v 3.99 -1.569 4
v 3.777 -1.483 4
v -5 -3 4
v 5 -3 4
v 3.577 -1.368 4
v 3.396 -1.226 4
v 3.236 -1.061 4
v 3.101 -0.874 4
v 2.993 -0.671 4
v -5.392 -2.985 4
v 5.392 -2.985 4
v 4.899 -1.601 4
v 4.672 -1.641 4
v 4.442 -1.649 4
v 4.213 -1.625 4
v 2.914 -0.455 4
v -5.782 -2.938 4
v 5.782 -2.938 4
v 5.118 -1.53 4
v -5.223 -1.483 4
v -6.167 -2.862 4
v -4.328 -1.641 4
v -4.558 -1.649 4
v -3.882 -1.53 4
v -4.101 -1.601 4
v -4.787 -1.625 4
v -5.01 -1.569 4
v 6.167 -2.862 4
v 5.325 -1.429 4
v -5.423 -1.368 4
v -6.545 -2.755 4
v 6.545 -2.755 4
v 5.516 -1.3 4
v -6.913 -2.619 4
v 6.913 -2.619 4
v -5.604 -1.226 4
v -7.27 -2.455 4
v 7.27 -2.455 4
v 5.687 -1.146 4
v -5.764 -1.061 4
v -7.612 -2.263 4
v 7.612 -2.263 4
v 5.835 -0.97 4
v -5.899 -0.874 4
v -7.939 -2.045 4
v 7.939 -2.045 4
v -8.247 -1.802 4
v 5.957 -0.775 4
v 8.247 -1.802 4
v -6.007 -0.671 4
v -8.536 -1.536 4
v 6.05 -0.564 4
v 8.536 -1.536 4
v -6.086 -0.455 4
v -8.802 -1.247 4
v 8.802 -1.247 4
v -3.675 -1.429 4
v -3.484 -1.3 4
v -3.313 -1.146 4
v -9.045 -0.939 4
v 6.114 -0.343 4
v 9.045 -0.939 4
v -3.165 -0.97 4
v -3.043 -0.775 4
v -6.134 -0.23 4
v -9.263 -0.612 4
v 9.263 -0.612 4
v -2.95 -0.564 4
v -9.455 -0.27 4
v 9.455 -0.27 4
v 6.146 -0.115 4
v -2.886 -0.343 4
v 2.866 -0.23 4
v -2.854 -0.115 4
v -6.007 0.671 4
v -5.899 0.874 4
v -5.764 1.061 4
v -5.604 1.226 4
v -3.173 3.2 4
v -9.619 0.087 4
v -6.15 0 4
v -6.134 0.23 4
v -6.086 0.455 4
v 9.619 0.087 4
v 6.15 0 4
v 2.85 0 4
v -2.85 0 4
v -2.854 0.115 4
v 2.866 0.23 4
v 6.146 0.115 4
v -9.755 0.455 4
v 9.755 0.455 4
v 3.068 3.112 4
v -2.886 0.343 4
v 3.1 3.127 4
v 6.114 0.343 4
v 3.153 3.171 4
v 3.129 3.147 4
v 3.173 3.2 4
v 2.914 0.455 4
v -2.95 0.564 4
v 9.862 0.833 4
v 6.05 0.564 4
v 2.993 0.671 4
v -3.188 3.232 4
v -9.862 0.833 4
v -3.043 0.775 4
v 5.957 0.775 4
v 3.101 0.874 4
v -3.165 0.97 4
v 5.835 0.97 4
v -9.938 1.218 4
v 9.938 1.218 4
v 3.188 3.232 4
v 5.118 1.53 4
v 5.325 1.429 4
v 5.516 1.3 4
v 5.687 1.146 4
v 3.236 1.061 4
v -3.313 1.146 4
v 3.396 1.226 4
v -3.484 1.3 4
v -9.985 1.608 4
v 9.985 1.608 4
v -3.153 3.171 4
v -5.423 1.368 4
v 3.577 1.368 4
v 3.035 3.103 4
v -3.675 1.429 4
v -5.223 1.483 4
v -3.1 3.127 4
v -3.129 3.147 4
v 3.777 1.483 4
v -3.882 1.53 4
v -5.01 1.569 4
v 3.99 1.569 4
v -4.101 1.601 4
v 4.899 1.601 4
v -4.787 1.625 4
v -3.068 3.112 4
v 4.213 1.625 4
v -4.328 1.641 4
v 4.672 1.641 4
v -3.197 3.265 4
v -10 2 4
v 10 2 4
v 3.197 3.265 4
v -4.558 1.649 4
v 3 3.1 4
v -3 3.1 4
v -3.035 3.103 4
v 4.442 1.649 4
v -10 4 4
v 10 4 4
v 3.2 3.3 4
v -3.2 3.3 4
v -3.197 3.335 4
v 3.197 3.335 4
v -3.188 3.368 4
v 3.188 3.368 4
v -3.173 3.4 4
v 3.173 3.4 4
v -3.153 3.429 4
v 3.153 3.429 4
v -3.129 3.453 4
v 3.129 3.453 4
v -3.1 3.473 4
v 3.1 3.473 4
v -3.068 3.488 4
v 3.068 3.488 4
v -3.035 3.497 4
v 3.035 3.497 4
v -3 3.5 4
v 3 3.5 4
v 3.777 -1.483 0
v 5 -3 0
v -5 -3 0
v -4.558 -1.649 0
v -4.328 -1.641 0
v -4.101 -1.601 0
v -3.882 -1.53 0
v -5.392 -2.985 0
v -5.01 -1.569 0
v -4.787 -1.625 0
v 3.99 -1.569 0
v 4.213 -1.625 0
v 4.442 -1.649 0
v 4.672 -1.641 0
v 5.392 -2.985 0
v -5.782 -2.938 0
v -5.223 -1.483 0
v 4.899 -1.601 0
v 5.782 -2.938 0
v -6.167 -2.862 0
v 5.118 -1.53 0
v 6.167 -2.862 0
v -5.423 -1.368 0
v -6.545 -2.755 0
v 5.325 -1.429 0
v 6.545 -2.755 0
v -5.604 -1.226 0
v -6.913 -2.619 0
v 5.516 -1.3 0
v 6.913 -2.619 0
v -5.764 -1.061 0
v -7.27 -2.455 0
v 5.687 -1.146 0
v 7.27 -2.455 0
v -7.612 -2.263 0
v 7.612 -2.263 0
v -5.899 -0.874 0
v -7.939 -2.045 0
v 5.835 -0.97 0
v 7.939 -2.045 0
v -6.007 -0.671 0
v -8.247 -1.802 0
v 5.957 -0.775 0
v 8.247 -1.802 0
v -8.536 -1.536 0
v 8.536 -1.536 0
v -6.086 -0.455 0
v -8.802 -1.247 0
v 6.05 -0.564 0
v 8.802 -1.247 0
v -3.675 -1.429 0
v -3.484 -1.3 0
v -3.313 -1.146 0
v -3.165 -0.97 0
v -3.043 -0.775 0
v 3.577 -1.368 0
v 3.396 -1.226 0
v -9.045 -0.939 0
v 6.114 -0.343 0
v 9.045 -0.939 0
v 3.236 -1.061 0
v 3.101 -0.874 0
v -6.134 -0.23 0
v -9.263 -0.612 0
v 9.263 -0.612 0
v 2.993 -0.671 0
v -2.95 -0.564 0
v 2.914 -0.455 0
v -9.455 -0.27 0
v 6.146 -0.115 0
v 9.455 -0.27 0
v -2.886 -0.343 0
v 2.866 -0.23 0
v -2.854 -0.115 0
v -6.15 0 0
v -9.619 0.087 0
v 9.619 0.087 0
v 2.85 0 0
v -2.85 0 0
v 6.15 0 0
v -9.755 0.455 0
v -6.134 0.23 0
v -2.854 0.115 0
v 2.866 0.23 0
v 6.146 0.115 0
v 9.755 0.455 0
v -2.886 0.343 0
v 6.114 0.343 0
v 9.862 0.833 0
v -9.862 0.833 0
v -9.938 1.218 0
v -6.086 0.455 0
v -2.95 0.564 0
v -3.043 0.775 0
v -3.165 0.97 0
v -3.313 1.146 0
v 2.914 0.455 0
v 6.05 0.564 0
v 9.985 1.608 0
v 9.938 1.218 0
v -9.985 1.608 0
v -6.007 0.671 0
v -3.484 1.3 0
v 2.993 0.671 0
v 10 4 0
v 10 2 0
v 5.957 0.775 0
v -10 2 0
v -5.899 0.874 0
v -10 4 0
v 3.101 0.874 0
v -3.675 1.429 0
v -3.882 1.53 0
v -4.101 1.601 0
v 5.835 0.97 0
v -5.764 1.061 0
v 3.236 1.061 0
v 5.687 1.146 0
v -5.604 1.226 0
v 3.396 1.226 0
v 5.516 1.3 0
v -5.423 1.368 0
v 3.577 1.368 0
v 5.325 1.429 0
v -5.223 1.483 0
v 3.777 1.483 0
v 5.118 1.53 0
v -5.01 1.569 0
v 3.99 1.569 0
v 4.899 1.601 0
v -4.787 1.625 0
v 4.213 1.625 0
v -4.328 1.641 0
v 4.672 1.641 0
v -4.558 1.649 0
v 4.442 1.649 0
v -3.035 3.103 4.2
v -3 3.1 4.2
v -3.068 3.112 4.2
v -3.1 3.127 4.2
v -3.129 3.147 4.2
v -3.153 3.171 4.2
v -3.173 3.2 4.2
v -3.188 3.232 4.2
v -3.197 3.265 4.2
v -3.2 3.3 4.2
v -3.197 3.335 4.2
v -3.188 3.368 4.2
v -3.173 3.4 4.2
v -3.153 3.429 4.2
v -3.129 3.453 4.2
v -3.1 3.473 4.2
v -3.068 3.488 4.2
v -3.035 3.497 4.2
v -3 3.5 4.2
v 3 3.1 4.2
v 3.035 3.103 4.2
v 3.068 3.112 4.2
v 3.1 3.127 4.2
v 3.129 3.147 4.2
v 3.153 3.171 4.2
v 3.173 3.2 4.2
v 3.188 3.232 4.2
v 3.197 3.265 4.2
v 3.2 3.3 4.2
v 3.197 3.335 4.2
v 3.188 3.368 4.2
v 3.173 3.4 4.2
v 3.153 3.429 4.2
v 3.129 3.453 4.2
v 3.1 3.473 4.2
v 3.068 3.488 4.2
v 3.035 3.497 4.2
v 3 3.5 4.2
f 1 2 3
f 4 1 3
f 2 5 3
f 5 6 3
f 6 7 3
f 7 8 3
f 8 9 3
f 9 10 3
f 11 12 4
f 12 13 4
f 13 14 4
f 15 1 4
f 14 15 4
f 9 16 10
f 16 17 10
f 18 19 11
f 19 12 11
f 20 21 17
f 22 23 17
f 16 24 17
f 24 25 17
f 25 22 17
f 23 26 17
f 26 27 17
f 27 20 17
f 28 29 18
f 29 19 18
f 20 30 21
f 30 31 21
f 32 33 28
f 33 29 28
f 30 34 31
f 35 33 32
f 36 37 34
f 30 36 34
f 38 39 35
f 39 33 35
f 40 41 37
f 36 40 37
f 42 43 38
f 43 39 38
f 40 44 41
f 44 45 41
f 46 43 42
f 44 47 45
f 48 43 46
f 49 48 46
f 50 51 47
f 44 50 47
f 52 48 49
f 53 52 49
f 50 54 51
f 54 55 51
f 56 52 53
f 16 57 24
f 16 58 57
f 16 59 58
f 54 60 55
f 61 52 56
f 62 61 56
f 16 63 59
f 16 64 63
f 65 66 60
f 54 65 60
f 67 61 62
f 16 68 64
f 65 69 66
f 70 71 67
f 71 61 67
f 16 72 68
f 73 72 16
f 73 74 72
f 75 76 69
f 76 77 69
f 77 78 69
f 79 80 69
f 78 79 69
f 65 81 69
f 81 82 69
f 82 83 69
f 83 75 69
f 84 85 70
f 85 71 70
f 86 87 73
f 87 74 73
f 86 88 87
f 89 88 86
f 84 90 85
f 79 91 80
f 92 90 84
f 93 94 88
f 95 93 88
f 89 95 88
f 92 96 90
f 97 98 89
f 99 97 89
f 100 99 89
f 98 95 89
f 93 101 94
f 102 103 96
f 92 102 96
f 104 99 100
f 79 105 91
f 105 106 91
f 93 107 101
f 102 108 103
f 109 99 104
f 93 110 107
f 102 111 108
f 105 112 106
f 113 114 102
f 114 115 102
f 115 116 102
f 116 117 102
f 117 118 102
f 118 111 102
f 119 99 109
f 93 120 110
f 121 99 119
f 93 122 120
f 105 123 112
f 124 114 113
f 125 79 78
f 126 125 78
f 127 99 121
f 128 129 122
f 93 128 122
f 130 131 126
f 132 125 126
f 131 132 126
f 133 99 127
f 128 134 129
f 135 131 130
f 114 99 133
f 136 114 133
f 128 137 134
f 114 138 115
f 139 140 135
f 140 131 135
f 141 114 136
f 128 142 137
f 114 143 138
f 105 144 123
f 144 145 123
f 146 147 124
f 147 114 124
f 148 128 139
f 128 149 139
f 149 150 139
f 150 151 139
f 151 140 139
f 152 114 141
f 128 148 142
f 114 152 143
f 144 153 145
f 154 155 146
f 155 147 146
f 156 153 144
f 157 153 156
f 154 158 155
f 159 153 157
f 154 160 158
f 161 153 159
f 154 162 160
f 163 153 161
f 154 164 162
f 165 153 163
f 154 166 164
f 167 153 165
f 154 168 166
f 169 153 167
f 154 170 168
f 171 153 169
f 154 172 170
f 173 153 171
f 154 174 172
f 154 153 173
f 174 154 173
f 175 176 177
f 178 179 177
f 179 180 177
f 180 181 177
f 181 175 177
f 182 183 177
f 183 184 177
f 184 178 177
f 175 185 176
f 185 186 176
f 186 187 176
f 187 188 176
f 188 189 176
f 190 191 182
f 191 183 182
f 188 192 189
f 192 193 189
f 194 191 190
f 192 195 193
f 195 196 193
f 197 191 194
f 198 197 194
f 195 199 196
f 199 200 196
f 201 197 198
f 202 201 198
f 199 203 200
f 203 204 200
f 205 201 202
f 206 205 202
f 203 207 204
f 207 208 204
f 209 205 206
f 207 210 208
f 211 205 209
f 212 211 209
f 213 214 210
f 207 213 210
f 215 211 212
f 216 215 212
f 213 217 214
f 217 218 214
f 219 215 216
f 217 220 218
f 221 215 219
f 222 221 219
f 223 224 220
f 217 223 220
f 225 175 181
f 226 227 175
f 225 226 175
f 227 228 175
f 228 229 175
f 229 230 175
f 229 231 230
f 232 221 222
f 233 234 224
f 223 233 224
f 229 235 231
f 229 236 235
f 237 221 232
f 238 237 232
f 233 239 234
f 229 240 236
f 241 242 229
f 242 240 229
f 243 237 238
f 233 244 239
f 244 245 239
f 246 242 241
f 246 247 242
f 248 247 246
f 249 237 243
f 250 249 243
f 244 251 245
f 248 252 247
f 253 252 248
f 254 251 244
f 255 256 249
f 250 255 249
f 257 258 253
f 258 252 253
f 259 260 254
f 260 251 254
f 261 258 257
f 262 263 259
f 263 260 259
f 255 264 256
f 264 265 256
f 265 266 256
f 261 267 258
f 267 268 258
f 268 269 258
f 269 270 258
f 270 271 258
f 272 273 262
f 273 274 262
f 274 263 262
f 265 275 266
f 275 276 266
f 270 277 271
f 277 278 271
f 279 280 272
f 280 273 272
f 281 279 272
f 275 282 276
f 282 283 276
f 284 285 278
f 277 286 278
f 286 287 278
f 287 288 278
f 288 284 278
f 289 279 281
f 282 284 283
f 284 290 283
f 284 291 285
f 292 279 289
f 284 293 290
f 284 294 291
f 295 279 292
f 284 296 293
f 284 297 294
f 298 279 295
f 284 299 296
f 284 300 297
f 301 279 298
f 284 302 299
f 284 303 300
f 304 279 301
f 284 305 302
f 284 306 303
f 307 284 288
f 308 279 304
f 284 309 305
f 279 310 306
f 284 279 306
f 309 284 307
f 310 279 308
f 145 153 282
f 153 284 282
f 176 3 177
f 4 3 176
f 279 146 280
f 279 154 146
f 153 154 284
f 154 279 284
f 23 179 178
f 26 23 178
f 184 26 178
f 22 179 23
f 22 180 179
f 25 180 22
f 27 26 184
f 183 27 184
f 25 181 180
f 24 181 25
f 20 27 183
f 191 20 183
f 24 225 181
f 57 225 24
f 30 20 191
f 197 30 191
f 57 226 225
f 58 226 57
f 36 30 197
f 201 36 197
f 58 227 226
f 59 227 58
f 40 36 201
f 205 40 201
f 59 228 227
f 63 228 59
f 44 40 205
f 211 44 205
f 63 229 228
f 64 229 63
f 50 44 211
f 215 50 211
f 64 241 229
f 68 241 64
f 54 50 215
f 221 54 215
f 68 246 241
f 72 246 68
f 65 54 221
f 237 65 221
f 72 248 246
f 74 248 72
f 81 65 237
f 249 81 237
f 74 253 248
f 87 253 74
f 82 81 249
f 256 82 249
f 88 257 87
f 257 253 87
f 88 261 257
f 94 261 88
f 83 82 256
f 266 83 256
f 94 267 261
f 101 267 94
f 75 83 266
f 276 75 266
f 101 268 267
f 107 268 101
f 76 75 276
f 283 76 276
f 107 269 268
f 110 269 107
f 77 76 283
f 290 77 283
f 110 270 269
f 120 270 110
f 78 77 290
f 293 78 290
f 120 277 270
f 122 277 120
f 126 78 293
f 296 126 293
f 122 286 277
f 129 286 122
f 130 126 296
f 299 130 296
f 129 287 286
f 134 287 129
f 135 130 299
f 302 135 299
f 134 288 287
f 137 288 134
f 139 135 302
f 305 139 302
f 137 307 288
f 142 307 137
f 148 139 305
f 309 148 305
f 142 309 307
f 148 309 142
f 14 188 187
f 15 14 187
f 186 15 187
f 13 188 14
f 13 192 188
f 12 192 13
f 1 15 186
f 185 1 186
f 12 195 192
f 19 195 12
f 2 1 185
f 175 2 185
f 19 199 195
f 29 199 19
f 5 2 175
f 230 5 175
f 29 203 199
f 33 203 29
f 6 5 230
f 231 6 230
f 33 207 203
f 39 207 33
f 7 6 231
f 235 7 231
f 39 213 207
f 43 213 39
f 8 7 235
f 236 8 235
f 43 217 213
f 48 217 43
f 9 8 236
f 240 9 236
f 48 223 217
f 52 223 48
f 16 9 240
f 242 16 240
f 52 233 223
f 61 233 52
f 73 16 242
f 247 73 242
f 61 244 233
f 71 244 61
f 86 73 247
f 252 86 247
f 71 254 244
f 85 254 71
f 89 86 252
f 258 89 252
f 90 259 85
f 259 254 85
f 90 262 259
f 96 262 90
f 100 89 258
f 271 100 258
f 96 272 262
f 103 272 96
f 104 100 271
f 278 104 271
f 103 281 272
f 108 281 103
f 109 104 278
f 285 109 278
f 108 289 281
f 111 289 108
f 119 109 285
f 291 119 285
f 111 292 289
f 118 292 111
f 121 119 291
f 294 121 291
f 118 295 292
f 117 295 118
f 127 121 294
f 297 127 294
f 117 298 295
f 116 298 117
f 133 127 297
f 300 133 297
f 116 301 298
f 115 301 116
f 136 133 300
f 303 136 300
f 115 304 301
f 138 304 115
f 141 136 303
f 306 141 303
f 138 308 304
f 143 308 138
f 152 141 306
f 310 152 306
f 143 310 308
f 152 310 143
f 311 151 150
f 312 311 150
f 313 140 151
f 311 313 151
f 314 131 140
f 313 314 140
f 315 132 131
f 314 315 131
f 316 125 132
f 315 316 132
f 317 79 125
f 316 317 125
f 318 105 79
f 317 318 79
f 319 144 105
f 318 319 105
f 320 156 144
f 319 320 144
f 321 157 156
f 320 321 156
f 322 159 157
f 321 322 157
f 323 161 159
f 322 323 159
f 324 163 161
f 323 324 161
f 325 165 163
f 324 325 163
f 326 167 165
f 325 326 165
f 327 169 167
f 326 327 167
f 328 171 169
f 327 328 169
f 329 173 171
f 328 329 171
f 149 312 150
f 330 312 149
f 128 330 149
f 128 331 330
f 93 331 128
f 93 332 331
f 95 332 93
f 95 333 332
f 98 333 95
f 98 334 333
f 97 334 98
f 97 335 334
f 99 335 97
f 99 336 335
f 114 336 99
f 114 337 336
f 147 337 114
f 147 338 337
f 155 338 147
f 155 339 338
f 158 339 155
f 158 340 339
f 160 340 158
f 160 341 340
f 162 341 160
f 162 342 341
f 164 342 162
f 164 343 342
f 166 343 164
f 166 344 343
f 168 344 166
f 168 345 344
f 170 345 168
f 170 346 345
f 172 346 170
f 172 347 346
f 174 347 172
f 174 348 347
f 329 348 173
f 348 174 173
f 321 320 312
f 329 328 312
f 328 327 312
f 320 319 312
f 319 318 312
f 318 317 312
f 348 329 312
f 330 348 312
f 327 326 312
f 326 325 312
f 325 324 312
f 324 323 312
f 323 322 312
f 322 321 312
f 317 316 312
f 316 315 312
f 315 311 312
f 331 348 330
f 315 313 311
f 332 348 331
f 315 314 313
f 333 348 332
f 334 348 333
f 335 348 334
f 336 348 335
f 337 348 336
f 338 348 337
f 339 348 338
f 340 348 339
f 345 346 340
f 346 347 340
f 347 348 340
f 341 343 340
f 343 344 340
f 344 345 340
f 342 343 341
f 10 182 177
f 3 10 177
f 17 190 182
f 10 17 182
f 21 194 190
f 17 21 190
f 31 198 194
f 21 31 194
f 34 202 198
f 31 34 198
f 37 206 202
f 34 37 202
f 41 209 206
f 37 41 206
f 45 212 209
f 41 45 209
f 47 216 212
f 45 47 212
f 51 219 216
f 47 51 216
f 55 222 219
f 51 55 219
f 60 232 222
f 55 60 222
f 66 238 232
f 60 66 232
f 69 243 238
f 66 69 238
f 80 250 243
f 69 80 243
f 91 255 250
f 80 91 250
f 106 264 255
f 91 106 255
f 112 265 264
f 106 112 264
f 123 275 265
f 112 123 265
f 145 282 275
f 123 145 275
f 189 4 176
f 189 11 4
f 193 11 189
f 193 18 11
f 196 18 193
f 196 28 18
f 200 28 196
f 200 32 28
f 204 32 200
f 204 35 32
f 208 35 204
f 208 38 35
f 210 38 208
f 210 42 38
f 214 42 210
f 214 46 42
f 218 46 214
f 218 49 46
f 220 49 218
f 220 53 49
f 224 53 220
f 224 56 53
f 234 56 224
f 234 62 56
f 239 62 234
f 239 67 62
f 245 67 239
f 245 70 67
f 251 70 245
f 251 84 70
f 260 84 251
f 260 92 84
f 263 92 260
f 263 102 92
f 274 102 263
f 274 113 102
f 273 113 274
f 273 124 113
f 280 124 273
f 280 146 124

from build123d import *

# Parameters (mm, degrees)
SKETCH1_W           = 20
SKETCH1_H           = 7
SKETCH1_R           = 1.65
BOSS_EXTRUDE1_DEPTH = 4
BOSS_EXTRUDE2_DEPTH = 0.2
FILLET1_R           = 5


with BuildPart() as part:
    # Sketch1 → Boss-Extrude1 (new body)
    with BuildSketch(Plane.XY):
        with Locations((0, 0.5)):
            Rectangle(SKETCH1_W, SKETCH1_H)
        with Locations((-4.5, 0)):
            Circle(SKETCH1_R, mode=Mode.SUBTRACT)
        with Locations((4.5, 0)):
            Circle(SKETCH1_R, mode=Mode.SUBTRACT)
    extrude(amount=BOSS_EXTRUDE1_DEPTH)

    # Sketch2 → Boss-Extrude2 (add)
    with BuildSketch(Plane.XY.offset(4)):
        with BuildLine():
            Line((-3, 3.5), (3, 3.5))
            ThreePointArc((3, 3.5), (3.2, 3.3), (3, 3.1))
            Line((3, 3.1), (-3, 3.1))
            ThreePointArc((-3, 3.1), (-3.2, 3.3), (-3, 3.5))
        make_face()
    extrude(amount=BOSS_EXTRUDE2_DEPTH)

    # Fillet1
    fillet1_edges = [part.edges().sort_by_distance(p)[0] for p in [
        (10, -3, 2),
        (-10, -3, 2),
    ]]
    fillet(fillet1_edges, radius=FILLET1_R)


solid = part.part
